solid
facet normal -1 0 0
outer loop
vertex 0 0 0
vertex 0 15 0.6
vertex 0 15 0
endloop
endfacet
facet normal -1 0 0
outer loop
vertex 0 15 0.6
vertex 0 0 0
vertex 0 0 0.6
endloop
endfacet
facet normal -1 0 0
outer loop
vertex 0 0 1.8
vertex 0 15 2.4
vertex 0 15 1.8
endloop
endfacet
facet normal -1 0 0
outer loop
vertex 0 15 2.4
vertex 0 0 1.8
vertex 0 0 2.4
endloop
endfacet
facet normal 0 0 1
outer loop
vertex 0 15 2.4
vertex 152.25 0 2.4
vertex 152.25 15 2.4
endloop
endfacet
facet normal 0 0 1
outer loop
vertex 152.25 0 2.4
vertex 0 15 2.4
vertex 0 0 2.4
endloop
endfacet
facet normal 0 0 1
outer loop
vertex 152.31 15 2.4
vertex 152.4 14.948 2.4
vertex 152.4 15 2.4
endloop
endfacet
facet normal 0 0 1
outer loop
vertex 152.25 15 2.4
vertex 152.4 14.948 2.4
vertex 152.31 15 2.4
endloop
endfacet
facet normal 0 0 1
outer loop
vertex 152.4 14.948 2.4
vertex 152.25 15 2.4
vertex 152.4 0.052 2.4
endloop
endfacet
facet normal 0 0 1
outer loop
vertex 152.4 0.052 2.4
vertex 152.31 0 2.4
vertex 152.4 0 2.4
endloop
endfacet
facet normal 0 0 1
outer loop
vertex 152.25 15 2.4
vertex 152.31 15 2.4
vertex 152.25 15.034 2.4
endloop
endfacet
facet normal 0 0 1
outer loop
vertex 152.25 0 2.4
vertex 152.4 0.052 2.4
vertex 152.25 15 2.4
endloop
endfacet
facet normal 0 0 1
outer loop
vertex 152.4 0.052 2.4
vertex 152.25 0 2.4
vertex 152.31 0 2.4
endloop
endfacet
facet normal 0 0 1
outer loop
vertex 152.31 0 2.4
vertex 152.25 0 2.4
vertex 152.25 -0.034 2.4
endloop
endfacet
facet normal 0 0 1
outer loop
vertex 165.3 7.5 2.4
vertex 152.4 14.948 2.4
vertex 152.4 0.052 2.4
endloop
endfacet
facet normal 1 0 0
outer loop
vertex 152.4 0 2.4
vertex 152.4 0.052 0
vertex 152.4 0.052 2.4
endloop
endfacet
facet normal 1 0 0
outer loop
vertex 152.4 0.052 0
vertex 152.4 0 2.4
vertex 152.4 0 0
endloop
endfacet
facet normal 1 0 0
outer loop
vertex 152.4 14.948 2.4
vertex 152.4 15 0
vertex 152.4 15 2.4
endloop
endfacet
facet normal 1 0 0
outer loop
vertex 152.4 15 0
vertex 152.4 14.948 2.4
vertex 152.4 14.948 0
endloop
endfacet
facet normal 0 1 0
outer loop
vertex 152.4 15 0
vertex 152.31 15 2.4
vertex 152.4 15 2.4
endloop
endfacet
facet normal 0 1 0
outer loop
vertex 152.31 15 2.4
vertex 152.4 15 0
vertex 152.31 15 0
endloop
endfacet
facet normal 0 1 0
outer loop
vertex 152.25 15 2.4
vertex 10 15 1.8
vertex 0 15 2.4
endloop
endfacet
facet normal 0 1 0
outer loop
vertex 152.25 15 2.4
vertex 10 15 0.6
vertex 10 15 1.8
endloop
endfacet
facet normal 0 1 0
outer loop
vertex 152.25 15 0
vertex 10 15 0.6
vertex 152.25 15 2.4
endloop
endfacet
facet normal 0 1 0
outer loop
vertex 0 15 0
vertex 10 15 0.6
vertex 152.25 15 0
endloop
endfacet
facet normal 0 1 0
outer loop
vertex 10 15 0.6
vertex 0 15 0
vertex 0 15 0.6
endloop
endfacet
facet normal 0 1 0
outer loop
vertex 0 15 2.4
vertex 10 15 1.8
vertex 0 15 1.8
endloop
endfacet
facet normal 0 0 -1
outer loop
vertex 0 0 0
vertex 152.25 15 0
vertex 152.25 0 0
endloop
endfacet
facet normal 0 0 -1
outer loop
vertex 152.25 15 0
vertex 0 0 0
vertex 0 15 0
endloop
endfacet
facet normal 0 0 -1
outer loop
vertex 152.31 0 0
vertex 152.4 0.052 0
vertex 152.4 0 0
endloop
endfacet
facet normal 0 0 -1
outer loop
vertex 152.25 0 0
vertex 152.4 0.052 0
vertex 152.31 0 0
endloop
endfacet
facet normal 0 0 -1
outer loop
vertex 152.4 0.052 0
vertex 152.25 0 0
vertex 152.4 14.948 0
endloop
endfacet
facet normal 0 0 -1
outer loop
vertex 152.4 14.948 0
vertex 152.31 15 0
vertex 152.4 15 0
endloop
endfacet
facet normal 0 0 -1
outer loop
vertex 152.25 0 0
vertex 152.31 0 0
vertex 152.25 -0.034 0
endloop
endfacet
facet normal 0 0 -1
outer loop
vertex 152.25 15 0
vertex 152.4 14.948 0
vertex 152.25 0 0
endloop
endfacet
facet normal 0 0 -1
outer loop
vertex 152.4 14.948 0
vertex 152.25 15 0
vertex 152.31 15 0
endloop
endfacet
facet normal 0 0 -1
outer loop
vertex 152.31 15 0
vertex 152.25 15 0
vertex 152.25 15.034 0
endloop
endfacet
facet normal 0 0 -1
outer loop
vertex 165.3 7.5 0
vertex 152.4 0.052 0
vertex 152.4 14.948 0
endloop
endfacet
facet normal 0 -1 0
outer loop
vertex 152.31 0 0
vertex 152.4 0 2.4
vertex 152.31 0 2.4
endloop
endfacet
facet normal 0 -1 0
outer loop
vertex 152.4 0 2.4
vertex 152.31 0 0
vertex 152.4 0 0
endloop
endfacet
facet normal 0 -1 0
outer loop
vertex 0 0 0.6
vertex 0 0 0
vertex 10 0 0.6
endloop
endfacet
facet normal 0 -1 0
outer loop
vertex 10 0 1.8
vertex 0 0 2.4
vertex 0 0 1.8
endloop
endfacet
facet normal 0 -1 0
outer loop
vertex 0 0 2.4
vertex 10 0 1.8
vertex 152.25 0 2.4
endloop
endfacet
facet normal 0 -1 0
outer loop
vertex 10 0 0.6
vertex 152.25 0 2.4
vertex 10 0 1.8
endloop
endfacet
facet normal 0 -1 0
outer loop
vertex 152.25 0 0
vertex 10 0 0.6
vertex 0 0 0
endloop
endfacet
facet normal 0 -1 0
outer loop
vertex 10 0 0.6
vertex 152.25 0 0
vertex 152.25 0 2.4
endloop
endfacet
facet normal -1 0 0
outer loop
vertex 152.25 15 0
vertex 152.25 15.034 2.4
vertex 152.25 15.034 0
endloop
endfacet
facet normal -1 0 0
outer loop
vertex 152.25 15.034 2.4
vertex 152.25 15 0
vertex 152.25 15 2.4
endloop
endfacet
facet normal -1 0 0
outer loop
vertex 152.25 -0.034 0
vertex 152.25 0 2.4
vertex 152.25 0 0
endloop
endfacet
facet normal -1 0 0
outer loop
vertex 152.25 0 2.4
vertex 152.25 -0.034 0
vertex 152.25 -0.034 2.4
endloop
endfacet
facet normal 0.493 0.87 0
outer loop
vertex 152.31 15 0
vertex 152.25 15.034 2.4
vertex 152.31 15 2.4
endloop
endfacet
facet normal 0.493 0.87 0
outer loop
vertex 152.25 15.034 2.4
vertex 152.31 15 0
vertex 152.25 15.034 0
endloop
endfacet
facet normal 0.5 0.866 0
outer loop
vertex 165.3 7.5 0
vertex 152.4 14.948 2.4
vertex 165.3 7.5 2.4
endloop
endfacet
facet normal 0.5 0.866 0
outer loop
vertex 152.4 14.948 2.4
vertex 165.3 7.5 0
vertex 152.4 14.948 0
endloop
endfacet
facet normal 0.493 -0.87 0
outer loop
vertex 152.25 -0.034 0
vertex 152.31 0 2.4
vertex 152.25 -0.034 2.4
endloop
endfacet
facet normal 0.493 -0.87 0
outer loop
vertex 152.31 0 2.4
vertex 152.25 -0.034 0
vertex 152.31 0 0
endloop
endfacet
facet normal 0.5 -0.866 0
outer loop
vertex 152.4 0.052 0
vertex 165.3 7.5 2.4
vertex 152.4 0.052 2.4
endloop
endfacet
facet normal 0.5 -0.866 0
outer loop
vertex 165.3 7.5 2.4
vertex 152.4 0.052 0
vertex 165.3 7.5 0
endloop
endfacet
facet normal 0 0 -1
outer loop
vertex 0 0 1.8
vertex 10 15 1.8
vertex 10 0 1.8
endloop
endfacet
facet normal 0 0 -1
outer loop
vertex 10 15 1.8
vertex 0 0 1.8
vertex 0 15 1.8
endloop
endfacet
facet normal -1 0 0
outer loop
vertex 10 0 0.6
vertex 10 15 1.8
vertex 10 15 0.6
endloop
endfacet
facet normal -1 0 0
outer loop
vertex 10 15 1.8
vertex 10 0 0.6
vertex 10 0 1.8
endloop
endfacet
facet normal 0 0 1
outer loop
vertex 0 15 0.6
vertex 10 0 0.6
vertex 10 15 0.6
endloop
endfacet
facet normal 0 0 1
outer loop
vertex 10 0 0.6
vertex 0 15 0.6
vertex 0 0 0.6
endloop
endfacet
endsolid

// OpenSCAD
support_spike_x=152.4;
support_spike_y=15;
support_spike_notch_z=1.2; //from elephant file
support_spike_z=1.2 + support_spike_notch_z;

difference(){
    union(){
        cube([support_spike_x, support_spike_y, support_spike_z]);
        
        color("red")
        translate([support_spike_x + 4.2,7.5,0])
        cylinder(d=support_spike_y+2.4,h=support_spike_z,$fn=3);
    }

    color("blue")
    translate([-1,-1,(support_spike_z - support_spike_notch_z)/2])
    cube([11,support_spike_y+2,support_spike_notch_z]);
}
